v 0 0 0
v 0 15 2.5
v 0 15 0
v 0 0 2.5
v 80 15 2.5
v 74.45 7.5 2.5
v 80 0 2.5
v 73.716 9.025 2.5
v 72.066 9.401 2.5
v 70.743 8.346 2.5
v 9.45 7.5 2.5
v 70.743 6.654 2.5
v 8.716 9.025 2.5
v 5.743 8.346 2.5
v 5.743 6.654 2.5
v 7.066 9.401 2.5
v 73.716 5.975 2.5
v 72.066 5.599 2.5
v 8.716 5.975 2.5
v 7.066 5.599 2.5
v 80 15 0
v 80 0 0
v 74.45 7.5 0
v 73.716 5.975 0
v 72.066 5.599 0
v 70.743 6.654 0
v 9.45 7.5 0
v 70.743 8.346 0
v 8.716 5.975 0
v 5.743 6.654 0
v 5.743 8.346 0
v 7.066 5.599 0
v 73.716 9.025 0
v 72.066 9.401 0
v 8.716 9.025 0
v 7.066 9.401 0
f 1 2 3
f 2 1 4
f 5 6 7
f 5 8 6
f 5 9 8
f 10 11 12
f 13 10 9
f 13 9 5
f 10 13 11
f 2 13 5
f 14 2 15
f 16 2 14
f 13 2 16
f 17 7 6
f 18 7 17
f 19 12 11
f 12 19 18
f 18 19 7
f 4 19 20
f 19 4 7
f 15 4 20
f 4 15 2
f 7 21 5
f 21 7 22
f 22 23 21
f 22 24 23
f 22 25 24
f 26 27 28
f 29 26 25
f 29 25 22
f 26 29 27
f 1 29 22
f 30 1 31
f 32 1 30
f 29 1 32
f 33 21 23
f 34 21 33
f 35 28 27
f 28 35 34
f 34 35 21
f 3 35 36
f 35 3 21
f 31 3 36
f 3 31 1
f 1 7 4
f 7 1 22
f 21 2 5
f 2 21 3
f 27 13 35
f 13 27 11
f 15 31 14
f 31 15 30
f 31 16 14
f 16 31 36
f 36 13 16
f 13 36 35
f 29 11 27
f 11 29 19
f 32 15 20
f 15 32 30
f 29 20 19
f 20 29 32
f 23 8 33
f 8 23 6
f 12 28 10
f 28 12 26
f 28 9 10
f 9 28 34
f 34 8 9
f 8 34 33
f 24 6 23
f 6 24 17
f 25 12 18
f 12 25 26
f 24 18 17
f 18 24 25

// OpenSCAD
// file: bottom_plate.scad
module hole(
    bracket_width,
    screw_size,
    thickness
) {
    translate([bracket_width / 2, bracket_width / 2, 0]) {
        cylinder(
            h=thickness * 3,
            r1=screw_size / 2,
            r2=screw_size / 2,
            center=true
        );
    }
}

module bottom_plate(
    width,
    length,
    thickness,
    bracket_width,
    screw_size
) {
    difference() {
        cube([width, length, thickness]);
        
        translate([0, 0, 0]) {
            hole(bracket_width, screw_size, thickness);
        }
        
        translate([width - bracket_width, 0, 0]) {
            hole(bracket_width, screw_size, thickness);
        }
        
        translate([0, length - bracket_width, 0]) {
            hole(bracket_width, screw_size, thickness);
        }
        
        translate([width - bracket_width, length - bracket_width, 0]) {
            hole(bracket_width, screw_size, thickness);
        }
    }
}


width = 80;
length = 59.50;
thickness = 2.5;

bracket_width = 15;
screw_size = 3.90;

bottom_plate(
    width,
    length,
    thickness,
    bracket_width,
    screw_size
);
// main file
use <bottom_plate.scad>;

width = 80;
length = 15;
thickness = 2.5;

bracket_width = 15;
screw_size = 3.90;

bottom_plate(
    width,
    length,
    thickness,
    bracket_width,
    screw_size
);
